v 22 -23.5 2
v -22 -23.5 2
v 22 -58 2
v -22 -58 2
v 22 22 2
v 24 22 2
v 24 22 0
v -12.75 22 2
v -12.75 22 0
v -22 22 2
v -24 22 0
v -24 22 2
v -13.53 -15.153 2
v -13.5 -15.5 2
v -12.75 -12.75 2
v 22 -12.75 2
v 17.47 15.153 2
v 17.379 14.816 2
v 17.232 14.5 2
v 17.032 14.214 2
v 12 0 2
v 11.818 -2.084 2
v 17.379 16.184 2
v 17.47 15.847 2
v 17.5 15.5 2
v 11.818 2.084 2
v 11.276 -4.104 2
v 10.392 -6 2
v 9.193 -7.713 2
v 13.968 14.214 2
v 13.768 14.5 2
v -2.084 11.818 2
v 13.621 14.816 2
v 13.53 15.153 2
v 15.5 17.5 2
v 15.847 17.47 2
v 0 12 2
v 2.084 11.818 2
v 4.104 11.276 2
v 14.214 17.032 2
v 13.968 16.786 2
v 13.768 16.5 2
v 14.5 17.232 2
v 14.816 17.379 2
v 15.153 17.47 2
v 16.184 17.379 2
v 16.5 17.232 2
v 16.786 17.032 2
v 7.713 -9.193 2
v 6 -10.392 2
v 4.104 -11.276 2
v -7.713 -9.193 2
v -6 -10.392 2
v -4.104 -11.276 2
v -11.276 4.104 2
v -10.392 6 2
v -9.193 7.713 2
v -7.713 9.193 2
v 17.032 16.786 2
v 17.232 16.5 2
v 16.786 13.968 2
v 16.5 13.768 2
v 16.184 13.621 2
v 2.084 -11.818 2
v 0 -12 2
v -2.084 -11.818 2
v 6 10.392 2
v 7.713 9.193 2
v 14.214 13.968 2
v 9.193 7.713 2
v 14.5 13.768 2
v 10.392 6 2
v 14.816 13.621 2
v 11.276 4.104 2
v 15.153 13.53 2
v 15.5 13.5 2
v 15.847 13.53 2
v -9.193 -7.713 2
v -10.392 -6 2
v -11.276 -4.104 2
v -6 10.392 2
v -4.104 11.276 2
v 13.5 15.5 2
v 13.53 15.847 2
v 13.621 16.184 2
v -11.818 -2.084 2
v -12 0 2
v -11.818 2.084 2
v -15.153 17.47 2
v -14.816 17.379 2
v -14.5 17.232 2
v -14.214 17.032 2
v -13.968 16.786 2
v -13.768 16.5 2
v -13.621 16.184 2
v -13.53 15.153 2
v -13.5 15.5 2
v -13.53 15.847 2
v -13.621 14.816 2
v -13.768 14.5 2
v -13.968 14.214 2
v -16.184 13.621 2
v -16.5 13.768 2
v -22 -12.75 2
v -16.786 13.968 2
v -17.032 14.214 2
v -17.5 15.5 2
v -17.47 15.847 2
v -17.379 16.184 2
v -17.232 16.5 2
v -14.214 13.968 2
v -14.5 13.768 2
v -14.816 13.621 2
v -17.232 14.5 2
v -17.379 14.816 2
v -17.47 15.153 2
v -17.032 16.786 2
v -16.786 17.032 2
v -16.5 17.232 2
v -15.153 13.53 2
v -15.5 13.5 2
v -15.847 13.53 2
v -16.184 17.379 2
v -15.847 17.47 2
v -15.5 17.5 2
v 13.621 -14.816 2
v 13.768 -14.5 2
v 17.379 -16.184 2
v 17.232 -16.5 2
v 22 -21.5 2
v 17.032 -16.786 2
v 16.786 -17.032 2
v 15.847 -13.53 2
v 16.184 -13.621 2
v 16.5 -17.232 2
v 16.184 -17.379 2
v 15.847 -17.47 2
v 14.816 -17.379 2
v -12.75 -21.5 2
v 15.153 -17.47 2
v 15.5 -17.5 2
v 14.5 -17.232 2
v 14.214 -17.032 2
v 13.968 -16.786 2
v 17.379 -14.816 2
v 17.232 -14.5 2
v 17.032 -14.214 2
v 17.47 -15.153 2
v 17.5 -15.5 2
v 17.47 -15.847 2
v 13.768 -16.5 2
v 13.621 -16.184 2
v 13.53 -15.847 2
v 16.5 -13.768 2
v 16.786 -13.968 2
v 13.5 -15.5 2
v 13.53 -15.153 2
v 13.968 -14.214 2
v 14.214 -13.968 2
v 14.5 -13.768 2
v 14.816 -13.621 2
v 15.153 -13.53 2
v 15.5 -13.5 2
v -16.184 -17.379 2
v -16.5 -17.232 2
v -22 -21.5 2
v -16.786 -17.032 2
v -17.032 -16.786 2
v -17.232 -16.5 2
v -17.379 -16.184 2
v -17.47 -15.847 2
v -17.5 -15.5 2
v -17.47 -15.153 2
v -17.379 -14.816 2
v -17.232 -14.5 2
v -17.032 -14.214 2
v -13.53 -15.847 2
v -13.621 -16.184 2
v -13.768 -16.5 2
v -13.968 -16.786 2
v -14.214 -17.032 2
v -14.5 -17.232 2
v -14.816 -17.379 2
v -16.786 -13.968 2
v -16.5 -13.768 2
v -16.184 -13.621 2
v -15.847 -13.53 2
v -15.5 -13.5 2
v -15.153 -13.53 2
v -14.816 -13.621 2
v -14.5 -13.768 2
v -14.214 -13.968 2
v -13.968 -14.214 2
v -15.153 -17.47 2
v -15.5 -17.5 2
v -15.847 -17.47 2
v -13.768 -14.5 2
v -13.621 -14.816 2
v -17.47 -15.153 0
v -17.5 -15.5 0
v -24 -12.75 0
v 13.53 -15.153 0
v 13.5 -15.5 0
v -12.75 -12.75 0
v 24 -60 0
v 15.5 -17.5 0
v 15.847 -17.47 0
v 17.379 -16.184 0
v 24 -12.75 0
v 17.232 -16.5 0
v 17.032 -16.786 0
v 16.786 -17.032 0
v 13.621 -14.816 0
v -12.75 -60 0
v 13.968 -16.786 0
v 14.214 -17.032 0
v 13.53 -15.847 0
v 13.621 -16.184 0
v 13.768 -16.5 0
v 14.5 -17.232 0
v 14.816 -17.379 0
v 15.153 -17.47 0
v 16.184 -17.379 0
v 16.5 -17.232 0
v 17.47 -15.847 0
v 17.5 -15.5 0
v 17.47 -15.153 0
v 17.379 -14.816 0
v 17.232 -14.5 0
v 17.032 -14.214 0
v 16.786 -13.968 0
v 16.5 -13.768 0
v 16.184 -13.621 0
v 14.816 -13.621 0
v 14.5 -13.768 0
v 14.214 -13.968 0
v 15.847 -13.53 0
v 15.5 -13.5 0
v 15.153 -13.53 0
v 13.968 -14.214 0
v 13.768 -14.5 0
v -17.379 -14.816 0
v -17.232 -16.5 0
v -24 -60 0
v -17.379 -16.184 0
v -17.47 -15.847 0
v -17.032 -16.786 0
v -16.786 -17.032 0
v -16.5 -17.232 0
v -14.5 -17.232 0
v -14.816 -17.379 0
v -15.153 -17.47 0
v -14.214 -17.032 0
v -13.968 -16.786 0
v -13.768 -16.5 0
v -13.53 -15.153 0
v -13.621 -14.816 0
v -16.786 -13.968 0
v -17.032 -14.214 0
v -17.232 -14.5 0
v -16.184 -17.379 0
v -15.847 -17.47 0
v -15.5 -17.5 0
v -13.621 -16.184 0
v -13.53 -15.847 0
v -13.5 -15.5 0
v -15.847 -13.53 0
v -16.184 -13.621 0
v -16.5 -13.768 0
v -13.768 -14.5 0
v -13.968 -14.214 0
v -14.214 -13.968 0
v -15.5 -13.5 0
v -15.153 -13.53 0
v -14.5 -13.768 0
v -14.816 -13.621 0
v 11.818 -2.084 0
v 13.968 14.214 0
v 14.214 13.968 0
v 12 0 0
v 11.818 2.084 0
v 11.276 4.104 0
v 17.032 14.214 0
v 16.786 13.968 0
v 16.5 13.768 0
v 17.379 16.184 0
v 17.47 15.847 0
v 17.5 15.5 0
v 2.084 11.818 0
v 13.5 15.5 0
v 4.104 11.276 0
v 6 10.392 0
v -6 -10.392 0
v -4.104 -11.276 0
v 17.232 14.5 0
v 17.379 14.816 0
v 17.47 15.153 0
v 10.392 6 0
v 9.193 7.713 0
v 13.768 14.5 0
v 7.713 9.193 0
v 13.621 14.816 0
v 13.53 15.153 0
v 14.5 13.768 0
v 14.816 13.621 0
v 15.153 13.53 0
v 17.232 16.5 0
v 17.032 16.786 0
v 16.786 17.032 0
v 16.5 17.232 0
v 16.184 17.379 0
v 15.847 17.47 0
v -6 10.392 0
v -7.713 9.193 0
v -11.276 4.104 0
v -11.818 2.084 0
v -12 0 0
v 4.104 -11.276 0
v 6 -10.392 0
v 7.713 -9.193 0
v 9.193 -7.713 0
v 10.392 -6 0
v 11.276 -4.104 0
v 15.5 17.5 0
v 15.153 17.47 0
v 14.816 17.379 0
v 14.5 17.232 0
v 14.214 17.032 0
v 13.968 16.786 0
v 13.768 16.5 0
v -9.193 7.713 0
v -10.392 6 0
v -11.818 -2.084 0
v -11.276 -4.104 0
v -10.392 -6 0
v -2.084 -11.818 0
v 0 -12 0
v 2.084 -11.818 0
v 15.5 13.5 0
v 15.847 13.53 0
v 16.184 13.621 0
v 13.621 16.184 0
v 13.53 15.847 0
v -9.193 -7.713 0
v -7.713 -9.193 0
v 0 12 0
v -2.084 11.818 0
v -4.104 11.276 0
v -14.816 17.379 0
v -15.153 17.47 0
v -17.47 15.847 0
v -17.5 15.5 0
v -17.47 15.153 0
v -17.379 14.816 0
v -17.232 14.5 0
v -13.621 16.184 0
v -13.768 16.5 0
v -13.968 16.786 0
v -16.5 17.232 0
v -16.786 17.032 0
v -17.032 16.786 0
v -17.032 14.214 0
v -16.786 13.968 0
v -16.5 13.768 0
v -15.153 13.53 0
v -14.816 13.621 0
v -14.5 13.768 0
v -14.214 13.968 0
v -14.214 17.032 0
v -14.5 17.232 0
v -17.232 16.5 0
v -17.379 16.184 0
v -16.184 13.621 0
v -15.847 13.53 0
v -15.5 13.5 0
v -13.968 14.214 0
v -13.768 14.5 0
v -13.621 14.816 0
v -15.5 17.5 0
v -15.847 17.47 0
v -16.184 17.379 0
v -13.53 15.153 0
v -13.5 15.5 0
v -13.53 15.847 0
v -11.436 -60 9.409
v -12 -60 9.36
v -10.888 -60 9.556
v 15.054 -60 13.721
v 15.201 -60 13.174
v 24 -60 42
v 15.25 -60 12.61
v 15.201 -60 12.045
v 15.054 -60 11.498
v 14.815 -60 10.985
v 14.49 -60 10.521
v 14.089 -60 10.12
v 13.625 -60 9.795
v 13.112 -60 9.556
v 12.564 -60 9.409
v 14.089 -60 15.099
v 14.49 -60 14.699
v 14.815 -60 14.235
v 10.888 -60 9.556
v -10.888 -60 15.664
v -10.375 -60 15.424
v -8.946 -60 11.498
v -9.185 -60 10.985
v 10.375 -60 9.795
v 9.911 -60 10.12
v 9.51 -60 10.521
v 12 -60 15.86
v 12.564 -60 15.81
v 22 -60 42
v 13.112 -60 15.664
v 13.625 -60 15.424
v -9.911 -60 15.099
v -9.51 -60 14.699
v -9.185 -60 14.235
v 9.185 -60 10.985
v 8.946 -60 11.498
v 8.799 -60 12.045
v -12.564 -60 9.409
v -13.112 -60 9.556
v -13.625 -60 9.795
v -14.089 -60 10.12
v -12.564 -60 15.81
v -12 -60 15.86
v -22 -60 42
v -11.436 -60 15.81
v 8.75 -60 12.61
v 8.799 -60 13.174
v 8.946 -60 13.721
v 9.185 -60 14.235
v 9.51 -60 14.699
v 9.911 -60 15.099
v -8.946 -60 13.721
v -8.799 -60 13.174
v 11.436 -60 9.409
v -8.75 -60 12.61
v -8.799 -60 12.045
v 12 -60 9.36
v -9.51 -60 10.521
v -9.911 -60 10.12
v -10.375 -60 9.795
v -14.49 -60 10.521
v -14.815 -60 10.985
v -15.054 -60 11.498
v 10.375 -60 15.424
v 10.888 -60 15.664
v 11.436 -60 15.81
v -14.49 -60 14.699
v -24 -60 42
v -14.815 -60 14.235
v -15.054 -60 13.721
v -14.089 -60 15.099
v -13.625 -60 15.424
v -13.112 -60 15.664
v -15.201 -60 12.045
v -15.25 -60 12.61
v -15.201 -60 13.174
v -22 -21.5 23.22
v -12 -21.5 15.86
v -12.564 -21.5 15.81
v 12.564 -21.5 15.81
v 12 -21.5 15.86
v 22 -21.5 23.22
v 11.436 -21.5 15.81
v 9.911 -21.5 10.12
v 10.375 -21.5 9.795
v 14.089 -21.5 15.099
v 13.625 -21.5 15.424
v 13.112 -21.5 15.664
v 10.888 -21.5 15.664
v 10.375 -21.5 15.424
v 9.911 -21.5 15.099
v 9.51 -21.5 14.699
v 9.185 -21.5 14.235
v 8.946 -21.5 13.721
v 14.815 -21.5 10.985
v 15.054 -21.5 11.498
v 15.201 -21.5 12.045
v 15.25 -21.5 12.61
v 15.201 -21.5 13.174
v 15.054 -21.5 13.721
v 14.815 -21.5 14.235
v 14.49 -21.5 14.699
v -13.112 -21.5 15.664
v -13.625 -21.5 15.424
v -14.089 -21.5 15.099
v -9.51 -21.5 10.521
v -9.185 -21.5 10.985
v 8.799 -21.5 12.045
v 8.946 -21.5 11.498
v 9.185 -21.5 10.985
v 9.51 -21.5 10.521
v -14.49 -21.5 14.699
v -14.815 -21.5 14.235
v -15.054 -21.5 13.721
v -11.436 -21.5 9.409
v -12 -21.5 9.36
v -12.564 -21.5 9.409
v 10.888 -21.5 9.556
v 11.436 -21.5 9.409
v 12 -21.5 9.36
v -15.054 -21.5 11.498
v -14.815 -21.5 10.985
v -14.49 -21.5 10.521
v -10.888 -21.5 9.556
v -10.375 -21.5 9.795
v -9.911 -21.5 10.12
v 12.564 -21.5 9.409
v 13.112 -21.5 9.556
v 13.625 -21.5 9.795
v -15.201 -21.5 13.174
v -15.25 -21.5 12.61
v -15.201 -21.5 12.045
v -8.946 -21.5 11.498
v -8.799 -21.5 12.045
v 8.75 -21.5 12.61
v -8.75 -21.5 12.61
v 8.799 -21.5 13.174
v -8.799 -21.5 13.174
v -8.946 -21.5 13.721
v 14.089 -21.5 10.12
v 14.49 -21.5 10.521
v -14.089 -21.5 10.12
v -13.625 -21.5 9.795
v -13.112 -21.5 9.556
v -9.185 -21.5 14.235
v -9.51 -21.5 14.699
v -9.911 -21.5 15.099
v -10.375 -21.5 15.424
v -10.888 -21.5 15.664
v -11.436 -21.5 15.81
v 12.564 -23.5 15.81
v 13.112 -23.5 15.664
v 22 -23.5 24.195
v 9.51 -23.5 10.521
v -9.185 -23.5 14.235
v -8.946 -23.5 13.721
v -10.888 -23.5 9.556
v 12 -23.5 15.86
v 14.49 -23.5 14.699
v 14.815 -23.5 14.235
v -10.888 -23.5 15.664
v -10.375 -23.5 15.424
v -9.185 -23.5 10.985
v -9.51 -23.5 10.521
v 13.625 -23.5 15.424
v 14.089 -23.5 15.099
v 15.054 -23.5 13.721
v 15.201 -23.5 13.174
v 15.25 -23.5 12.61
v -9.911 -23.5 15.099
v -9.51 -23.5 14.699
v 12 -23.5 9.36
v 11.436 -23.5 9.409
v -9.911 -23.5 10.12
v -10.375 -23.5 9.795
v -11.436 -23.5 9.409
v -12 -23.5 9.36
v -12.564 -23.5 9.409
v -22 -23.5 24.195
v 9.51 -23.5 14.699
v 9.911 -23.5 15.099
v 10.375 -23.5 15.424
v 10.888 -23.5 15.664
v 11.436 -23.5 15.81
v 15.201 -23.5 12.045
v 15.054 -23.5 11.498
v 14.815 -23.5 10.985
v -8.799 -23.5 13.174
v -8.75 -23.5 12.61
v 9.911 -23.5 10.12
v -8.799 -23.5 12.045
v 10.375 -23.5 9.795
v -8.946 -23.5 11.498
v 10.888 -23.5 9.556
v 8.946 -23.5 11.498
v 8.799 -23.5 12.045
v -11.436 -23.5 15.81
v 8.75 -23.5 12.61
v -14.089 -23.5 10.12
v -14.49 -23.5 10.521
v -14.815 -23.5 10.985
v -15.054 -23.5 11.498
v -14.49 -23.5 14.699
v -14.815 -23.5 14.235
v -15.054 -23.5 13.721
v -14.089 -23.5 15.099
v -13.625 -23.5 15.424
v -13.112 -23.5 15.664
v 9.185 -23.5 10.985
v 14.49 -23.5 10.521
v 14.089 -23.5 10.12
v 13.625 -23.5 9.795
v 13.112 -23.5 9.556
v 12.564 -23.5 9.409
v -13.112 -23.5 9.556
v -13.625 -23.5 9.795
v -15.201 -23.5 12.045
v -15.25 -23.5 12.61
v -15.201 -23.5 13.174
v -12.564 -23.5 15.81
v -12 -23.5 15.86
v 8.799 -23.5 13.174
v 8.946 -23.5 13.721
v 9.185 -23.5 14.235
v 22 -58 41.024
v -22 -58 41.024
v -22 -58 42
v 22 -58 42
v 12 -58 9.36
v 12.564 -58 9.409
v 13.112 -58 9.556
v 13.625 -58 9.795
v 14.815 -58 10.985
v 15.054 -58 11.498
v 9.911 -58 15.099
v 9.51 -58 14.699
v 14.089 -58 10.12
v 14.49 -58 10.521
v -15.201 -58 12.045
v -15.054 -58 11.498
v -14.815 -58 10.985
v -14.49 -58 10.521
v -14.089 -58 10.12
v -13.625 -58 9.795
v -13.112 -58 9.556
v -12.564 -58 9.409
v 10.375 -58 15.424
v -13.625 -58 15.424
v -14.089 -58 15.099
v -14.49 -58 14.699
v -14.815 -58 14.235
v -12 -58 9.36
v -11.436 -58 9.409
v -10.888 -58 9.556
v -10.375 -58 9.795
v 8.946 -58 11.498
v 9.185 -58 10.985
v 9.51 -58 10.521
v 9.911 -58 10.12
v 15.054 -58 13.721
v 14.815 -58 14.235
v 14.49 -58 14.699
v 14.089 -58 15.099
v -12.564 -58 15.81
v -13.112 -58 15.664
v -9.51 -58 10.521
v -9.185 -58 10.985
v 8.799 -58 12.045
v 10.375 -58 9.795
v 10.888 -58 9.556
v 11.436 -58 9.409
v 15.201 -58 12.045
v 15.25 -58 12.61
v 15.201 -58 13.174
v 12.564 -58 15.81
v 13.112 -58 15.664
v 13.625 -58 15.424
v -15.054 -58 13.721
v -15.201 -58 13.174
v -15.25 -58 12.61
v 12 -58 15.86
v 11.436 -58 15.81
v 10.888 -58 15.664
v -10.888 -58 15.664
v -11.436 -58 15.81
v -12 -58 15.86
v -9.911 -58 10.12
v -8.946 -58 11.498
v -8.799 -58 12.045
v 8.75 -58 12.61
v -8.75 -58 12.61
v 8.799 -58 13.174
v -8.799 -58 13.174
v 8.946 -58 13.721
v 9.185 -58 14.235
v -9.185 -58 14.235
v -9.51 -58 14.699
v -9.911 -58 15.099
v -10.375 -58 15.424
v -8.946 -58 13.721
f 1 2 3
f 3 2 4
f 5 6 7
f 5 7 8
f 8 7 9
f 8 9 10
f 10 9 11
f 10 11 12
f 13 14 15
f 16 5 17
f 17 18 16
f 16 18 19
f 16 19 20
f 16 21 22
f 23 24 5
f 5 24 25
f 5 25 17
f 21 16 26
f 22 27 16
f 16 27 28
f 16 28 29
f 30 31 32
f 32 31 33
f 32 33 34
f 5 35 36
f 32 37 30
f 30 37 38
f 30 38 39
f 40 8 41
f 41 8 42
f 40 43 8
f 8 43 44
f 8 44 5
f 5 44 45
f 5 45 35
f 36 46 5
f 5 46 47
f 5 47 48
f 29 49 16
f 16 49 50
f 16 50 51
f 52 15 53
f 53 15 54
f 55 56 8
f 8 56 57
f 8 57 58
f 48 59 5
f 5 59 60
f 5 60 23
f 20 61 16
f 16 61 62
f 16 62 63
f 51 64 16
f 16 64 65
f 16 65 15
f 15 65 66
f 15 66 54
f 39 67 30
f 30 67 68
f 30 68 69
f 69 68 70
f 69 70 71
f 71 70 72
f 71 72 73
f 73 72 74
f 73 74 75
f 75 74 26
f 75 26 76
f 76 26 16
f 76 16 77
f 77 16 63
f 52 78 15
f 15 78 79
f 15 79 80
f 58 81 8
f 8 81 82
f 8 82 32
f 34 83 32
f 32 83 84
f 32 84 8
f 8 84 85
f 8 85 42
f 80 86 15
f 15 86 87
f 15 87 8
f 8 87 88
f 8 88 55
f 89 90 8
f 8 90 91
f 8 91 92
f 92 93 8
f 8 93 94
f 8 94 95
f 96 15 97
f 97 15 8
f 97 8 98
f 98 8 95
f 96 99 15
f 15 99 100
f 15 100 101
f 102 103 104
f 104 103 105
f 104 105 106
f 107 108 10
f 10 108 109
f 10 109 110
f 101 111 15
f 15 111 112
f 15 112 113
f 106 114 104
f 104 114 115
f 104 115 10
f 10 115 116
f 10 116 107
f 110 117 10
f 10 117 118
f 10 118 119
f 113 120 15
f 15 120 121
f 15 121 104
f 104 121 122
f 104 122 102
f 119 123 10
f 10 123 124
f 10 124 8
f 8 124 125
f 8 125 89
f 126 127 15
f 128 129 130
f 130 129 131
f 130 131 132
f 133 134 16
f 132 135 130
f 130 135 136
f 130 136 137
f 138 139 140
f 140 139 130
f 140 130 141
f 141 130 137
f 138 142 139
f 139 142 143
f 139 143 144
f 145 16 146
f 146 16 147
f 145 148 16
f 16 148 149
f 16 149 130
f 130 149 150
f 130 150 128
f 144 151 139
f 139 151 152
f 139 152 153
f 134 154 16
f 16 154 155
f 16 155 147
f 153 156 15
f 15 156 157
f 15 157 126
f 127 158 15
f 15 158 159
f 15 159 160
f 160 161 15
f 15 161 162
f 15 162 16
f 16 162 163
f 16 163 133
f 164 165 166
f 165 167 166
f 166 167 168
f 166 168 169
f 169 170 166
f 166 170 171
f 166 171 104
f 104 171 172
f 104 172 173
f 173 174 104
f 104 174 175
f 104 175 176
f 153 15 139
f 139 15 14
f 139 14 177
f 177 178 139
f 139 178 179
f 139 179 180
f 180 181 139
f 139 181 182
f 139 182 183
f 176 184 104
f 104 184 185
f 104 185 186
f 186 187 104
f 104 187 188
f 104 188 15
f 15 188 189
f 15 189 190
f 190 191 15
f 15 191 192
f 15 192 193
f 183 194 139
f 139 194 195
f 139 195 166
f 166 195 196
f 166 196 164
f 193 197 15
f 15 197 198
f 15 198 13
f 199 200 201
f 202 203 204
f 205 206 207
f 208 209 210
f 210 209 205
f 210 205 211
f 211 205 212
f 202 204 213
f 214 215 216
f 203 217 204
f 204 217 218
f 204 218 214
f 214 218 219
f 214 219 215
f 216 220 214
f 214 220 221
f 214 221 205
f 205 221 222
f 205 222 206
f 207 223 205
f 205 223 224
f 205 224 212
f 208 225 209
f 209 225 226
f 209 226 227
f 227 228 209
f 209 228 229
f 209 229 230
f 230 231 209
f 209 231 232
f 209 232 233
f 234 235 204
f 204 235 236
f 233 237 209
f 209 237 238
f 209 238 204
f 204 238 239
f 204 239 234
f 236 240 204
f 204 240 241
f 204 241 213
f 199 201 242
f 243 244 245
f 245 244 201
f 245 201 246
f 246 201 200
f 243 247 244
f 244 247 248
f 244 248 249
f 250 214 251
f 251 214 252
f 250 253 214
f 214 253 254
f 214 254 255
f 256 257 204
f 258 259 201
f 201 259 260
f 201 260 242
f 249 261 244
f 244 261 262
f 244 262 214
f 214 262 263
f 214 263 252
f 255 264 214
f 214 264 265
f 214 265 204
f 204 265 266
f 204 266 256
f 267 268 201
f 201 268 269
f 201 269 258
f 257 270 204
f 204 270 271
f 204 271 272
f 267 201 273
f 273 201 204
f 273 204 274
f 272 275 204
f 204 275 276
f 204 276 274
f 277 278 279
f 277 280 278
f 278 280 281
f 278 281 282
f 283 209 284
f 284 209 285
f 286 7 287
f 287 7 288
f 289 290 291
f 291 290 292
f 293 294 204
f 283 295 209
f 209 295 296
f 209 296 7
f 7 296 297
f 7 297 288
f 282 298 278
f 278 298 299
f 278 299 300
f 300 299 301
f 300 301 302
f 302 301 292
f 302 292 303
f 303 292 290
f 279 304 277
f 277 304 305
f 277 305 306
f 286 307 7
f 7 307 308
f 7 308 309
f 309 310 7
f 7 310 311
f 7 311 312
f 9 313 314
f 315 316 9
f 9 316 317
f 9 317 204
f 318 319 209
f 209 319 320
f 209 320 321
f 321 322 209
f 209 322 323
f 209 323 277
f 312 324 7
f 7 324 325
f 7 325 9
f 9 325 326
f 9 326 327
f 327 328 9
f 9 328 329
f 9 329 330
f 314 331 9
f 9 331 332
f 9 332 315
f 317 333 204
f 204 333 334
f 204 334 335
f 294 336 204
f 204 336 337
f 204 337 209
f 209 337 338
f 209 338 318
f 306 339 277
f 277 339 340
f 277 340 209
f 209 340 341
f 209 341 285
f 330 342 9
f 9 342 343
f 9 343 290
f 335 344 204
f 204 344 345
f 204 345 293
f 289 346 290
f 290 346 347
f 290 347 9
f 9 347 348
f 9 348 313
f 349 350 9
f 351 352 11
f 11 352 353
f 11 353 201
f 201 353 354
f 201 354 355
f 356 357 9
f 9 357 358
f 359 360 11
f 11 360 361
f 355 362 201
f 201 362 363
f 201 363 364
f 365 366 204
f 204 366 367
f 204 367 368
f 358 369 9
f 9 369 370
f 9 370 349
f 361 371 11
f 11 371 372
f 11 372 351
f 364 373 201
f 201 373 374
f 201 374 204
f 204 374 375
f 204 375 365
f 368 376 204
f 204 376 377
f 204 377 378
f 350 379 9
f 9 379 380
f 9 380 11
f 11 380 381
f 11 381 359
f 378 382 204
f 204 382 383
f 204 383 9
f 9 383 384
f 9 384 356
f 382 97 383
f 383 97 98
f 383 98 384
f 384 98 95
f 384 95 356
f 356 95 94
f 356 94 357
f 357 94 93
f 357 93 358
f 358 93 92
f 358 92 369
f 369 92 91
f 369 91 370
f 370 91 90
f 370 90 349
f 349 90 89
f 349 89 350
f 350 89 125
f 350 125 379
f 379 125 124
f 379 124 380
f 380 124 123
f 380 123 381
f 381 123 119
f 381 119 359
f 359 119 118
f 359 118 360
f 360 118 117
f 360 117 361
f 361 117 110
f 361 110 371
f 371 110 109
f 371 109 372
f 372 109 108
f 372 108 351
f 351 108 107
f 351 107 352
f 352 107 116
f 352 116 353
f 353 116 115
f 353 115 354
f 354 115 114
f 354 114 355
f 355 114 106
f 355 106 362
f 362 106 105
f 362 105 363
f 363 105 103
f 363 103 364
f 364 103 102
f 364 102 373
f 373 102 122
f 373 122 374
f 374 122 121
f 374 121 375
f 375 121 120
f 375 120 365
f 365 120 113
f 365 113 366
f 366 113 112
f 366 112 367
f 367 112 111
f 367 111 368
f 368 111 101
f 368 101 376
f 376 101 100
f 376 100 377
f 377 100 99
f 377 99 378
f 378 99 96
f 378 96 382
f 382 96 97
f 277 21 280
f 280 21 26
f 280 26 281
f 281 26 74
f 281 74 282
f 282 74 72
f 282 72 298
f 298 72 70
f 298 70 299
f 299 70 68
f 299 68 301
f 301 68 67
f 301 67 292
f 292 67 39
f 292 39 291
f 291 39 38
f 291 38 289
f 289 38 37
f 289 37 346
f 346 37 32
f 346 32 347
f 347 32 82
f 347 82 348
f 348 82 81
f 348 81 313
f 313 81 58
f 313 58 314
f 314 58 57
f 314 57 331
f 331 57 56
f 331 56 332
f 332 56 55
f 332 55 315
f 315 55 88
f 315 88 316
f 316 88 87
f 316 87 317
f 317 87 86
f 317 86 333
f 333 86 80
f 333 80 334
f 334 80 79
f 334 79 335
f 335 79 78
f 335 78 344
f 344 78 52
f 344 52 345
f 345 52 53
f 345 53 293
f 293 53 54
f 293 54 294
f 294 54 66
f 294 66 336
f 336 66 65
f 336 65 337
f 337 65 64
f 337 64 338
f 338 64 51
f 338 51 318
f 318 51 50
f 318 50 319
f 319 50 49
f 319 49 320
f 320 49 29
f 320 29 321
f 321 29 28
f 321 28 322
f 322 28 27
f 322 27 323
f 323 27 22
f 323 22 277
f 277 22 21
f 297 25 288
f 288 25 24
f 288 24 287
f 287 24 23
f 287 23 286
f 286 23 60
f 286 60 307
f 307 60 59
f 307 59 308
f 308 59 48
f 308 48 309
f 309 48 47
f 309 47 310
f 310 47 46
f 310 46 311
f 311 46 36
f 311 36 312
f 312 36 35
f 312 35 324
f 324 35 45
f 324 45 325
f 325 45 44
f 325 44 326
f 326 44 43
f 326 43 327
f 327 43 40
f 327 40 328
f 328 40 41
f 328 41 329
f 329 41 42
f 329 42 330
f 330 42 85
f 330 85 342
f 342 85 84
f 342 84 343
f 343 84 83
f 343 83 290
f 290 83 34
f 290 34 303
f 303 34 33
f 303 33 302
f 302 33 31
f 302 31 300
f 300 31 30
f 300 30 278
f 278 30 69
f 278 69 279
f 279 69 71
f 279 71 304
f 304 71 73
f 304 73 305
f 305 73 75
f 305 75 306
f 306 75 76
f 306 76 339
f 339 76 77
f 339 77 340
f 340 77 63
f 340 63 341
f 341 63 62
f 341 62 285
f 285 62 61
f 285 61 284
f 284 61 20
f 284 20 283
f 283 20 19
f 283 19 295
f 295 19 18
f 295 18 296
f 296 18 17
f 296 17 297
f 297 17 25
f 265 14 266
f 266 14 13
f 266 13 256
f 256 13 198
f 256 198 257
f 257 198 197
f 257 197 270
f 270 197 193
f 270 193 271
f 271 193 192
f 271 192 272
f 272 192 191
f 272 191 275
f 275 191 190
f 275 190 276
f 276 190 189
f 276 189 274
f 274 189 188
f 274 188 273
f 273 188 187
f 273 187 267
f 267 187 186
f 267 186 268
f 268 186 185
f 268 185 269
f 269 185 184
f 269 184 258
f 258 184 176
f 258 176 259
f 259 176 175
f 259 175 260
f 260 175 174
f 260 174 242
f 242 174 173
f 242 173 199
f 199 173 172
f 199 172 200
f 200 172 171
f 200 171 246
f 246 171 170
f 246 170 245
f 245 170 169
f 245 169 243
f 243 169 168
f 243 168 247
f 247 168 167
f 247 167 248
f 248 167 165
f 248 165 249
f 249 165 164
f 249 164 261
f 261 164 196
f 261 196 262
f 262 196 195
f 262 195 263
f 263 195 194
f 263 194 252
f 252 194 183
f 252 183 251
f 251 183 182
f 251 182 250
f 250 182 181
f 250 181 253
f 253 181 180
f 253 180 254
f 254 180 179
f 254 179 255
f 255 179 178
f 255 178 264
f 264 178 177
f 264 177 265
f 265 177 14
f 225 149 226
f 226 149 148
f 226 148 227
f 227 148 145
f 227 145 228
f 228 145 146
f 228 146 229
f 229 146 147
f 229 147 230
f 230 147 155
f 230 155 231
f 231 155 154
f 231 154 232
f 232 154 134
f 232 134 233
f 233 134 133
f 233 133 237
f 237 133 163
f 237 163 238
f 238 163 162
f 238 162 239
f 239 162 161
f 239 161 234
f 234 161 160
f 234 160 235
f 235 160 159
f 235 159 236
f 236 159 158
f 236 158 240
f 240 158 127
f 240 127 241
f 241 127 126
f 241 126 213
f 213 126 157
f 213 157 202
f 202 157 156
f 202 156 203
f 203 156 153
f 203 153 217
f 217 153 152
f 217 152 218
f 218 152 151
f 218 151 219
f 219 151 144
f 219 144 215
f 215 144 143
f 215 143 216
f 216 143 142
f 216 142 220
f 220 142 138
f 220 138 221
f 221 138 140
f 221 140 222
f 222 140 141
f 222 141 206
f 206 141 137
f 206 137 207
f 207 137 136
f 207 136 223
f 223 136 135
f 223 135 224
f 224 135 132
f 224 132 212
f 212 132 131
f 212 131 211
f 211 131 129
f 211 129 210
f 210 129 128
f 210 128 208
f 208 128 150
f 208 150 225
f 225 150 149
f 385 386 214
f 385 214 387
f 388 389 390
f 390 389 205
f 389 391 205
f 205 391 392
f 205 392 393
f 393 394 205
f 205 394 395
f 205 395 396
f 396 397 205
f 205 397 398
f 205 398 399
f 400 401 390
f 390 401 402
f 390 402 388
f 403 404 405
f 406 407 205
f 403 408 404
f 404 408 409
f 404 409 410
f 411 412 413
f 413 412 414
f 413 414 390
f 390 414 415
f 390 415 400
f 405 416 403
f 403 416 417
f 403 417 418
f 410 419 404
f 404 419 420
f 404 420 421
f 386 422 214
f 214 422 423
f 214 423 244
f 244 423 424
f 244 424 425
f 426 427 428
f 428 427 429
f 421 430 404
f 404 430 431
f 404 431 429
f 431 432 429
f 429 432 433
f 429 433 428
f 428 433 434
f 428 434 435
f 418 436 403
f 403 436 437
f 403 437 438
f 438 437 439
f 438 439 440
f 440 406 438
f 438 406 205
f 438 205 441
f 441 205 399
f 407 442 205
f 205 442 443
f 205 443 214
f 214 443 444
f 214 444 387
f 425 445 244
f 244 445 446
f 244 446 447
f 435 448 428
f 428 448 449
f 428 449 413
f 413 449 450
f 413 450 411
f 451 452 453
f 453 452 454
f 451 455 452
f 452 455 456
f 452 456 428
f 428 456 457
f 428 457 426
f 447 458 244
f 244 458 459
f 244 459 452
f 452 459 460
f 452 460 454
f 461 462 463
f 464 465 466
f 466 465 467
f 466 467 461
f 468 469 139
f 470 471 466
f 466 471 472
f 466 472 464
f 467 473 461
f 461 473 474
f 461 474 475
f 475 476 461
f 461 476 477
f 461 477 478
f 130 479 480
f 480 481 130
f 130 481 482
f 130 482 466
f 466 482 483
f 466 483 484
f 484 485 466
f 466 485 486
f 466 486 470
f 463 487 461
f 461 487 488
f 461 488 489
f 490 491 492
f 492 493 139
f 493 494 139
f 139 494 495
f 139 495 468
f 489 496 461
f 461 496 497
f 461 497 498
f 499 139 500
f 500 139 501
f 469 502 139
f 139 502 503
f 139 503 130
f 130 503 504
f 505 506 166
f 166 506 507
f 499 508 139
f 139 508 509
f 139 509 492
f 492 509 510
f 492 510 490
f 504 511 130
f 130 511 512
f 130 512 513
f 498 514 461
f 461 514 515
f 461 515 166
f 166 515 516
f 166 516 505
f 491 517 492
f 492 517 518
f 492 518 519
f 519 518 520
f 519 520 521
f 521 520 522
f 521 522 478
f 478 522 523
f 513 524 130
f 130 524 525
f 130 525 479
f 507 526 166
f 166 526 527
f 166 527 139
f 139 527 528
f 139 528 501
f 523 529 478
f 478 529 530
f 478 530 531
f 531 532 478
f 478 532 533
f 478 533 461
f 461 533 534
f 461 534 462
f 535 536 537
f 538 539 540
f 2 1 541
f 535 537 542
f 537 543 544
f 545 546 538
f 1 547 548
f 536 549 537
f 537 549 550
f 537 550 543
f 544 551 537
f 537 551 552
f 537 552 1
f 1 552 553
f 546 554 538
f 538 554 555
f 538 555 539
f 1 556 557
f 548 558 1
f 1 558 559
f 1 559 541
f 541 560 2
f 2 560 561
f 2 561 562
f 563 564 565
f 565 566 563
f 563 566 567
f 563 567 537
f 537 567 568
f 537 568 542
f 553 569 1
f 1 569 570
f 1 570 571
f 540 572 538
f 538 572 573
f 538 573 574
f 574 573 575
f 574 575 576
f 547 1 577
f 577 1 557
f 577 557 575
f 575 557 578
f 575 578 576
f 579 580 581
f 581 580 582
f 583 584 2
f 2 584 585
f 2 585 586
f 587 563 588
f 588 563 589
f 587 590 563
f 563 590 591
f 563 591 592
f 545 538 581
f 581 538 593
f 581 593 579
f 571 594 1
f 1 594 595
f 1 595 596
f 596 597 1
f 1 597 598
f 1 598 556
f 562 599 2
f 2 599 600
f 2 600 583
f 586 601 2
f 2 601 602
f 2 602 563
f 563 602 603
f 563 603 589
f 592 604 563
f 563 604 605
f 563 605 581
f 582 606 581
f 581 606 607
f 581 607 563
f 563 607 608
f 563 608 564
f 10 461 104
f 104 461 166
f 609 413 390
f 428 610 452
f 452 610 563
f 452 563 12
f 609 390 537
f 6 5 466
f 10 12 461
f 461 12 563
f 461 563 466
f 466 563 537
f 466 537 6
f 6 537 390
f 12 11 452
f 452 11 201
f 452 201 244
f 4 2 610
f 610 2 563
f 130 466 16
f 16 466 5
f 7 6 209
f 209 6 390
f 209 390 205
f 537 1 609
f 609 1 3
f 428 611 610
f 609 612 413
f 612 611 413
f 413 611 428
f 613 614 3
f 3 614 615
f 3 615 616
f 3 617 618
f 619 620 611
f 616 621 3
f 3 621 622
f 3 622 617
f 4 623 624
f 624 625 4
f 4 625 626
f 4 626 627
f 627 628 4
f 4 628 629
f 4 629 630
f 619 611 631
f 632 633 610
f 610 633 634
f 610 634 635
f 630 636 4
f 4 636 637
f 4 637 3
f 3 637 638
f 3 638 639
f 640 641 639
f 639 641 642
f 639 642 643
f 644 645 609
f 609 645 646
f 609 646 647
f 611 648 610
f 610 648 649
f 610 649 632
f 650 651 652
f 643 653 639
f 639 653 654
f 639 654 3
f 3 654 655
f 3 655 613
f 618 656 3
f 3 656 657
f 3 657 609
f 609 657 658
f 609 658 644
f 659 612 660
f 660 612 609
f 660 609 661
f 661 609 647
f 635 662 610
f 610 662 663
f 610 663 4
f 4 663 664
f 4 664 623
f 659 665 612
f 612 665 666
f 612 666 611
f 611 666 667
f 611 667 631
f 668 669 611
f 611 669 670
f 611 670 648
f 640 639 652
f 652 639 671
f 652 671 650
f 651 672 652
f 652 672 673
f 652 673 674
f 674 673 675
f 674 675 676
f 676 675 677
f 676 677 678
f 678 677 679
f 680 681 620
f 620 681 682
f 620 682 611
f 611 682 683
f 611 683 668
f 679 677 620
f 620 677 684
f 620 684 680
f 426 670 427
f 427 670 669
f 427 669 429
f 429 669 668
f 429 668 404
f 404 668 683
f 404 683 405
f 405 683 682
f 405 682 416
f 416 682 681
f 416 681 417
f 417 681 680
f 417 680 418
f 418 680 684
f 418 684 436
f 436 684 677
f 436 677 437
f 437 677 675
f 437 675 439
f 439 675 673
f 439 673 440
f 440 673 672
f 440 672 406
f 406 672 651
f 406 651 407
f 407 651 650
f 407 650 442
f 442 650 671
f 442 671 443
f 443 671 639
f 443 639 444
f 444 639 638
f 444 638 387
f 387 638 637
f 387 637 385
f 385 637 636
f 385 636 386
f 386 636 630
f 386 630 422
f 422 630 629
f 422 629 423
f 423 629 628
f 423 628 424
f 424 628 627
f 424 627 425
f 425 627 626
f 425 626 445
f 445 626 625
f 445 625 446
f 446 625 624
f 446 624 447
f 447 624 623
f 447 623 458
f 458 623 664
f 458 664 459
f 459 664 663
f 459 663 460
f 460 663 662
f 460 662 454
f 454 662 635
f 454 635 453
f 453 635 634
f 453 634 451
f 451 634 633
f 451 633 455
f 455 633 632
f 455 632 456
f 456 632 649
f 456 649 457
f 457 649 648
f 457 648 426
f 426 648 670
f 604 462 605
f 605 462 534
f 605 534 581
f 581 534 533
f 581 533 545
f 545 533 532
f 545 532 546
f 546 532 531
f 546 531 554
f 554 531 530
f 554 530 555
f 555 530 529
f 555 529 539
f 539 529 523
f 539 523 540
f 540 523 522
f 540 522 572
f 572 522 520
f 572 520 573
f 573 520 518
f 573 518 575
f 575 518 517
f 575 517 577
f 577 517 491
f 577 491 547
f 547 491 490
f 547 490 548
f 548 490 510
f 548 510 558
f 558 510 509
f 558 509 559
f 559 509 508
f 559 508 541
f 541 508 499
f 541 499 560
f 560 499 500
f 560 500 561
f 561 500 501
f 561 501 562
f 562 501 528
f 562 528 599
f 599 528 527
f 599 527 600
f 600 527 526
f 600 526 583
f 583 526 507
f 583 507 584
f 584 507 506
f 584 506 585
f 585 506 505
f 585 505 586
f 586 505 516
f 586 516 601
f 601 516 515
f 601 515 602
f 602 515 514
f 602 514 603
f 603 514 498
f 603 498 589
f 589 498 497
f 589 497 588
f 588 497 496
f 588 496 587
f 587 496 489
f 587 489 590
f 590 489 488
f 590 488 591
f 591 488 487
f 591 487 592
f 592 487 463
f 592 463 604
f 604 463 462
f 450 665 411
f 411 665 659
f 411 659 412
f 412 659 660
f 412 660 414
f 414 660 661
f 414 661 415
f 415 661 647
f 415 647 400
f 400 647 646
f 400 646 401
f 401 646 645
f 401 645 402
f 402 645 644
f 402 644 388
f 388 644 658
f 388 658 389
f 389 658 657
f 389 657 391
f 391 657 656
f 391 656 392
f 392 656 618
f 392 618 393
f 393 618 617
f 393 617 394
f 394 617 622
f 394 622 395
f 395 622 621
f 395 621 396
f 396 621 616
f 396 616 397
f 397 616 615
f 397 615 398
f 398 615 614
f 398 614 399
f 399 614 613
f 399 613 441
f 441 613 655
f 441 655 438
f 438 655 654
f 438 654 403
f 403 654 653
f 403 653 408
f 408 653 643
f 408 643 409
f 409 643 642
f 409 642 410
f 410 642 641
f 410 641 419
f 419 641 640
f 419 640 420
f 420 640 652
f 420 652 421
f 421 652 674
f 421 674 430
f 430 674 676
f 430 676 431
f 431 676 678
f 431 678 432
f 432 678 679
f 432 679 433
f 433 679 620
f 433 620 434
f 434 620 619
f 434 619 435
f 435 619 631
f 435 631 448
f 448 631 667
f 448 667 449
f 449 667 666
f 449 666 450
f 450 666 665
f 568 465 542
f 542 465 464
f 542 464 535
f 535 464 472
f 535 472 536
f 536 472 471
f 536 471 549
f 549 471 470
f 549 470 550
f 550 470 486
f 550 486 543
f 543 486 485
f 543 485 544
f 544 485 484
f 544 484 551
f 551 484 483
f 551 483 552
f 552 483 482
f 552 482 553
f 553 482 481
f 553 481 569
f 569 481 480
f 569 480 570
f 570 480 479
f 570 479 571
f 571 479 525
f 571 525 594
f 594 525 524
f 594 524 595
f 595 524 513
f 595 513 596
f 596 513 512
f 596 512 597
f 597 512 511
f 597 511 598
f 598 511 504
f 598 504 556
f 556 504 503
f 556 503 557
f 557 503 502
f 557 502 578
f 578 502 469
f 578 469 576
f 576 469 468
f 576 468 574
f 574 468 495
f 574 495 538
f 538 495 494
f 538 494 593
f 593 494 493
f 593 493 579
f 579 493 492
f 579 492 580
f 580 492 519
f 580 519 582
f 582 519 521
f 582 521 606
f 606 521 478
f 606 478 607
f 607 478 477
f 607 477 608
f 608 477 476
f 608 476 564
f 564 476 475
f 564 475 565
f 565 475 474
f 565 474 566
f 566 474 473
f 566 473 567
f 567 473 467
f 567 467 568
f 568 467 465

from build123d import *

# Parameters (mm, degrees)
CROQUIS1_W              = 44
CROQUIS1_H              = 44
SALIENTE_EXTRUIR1_DEPTH = 2
CROQUIS2_R              = 12
CROQUIS2_R_2            = 2
CORTAR_EXTRUIR1_DEPTH   = 2
CROQUIS3_W              = 44
CROQUIS3_H              = 38
SALIENTE_EXTRUIR2_DEPTH = 2
CROQUIS4_W              = 44
CROQUIS4_H              = 2
SALIENTE_EXTRUIR3_DEPTH = 29
SALIENTE_EXTRUIR4_DEPTH = 2
SALIENTE_EXTRUIR5_DEPTH = 2
CORTAR_EXTRUIR2_DEPTH   = 44
CROQUIS10_W             = 44
CROQUIS10_H             = 40
SALIENTE_EXTRUIR6_DEPTH = 2
CROQUIS11_R             = 3.25
CORTAR_EXTRUIR3_DEPTH   = 66.055745327


with BuildPart() as part:
    # Croquis1 → Saliente-Extruir1 (new body)
    with BuildSketch(Plane.XY):
        Rectangle(CROQUIS1_W, CROQUIS1_H)
    extrude(amount=SALIENTE_EXTRUIR1_DEPTH)

    # Croquis2 → Cortar-Extruir1 (cut)
    with BuildSketch(Plane.XY.offset(2)):
        Circle(CROQUIS2_R)
        with Locations((-15.5, 15.5)):
            Circle(CROQUIS2_R_2)
        with Locations((15.5, 15.5)):
            Circle(CROQUIS2_R_2)
        with Locations((15.5, -15.5)):
            Circle(CROQUIS2_R_2)
        with Locations((-15.5, -15.5)):
            Circle(CROQUIS2_R_2)
    extrude(amount=-CORTAR_EXTRUIR1_DEPTH, mode=Mode.SUBTRACT)

    # Croquis3 → Saliente-Extruir2 (add)
    with BuildSketch(Plane.XY.offset(2)):
        with Locations((0, -41)):
            Rectangle(CROQUIS3_W, CROQUIS3_H)
    extrude(amount=-SALIENTE_EXTRUIR2_DEPTH)

    # Croquis4 → Saliente-Extruir3 (add)
    with BuildSketch(Plane.XY.offset(2)):
        with Locations((0, -22.5)):
            Rectangle(CROQUIS4_W, CROQUIS4_H)
    extrude(amount=SALIENTE_EXTRUIR3_DEPTH)

    # Croquis5 → Saliente-Extruir4 (add)
    with BuildSketch(Plane.ZY.offset(22)):
        Polygon((2, 22), (42, -60), (2, -60), (0, -60), (0, 22), align=None)
    extrude(amount=SALIENTE_EXTRUIR4_DEPTH)

    # Croquis7 → Saliente-Extruir5 (add)
    with BuildSketch(Plane(origin=(22, 0, 0), x_dir=(0, 0, -1), z_dir=(1, 0, 0))):
        Polygon((0, -60), (-42, -60), (-2, 22), (0, 22), align=None)
    extrude(amount=SALIENTE_EXTRUIR5_DEPTH)

    # Croquis8 → Cortar-Extruir2 (cut)
    with BuildSketch(Plane(origin=(22, 0, 0), x_dir=(0, 0, -1), z_dir=(1, 0, 0))):
        Polygon((-24.195121951, -23.5), (-23.219512195, -21.5), (-31, -21.5), (-31, -23.5), align=None)
    extrude(amount=-CORTAR_EXTRUIR2_DEPTH, mode=Mode.SUBTRACT)

    # Croquis10 → Saliente-Extruir6 (add)
    with BuildSketch(Plane.XZ.offset(60)):
        with Locations((0, 22)):
            Rectangle(CROQUIS10_W, CROQUIS10_H)
    extrude(amount=-SALIENTE_EXTRUIR6_DEPTH)

    # Croquis11 → Cortar-Extruir3 (cut, through all)
    with BuildSketch(Plane(origin=(0, -21.5, 0), x_dir=(1, 0, 0), z_dir=(0, 1, 0))):
        with Locations(Location((-12, -12.609756098, 0), (0, 0, 270))):
            Circle(CROQUIS11_R)
        with Locations(Location((12, -12.609756098, 0), (0, 0, 270))):
            Circle(CROQUIS11_R)
    extrude(amount=-CORTAR_EXTRUIR3_DEPTH, mode=Mode.SUBTRACT)


solid = part.part
